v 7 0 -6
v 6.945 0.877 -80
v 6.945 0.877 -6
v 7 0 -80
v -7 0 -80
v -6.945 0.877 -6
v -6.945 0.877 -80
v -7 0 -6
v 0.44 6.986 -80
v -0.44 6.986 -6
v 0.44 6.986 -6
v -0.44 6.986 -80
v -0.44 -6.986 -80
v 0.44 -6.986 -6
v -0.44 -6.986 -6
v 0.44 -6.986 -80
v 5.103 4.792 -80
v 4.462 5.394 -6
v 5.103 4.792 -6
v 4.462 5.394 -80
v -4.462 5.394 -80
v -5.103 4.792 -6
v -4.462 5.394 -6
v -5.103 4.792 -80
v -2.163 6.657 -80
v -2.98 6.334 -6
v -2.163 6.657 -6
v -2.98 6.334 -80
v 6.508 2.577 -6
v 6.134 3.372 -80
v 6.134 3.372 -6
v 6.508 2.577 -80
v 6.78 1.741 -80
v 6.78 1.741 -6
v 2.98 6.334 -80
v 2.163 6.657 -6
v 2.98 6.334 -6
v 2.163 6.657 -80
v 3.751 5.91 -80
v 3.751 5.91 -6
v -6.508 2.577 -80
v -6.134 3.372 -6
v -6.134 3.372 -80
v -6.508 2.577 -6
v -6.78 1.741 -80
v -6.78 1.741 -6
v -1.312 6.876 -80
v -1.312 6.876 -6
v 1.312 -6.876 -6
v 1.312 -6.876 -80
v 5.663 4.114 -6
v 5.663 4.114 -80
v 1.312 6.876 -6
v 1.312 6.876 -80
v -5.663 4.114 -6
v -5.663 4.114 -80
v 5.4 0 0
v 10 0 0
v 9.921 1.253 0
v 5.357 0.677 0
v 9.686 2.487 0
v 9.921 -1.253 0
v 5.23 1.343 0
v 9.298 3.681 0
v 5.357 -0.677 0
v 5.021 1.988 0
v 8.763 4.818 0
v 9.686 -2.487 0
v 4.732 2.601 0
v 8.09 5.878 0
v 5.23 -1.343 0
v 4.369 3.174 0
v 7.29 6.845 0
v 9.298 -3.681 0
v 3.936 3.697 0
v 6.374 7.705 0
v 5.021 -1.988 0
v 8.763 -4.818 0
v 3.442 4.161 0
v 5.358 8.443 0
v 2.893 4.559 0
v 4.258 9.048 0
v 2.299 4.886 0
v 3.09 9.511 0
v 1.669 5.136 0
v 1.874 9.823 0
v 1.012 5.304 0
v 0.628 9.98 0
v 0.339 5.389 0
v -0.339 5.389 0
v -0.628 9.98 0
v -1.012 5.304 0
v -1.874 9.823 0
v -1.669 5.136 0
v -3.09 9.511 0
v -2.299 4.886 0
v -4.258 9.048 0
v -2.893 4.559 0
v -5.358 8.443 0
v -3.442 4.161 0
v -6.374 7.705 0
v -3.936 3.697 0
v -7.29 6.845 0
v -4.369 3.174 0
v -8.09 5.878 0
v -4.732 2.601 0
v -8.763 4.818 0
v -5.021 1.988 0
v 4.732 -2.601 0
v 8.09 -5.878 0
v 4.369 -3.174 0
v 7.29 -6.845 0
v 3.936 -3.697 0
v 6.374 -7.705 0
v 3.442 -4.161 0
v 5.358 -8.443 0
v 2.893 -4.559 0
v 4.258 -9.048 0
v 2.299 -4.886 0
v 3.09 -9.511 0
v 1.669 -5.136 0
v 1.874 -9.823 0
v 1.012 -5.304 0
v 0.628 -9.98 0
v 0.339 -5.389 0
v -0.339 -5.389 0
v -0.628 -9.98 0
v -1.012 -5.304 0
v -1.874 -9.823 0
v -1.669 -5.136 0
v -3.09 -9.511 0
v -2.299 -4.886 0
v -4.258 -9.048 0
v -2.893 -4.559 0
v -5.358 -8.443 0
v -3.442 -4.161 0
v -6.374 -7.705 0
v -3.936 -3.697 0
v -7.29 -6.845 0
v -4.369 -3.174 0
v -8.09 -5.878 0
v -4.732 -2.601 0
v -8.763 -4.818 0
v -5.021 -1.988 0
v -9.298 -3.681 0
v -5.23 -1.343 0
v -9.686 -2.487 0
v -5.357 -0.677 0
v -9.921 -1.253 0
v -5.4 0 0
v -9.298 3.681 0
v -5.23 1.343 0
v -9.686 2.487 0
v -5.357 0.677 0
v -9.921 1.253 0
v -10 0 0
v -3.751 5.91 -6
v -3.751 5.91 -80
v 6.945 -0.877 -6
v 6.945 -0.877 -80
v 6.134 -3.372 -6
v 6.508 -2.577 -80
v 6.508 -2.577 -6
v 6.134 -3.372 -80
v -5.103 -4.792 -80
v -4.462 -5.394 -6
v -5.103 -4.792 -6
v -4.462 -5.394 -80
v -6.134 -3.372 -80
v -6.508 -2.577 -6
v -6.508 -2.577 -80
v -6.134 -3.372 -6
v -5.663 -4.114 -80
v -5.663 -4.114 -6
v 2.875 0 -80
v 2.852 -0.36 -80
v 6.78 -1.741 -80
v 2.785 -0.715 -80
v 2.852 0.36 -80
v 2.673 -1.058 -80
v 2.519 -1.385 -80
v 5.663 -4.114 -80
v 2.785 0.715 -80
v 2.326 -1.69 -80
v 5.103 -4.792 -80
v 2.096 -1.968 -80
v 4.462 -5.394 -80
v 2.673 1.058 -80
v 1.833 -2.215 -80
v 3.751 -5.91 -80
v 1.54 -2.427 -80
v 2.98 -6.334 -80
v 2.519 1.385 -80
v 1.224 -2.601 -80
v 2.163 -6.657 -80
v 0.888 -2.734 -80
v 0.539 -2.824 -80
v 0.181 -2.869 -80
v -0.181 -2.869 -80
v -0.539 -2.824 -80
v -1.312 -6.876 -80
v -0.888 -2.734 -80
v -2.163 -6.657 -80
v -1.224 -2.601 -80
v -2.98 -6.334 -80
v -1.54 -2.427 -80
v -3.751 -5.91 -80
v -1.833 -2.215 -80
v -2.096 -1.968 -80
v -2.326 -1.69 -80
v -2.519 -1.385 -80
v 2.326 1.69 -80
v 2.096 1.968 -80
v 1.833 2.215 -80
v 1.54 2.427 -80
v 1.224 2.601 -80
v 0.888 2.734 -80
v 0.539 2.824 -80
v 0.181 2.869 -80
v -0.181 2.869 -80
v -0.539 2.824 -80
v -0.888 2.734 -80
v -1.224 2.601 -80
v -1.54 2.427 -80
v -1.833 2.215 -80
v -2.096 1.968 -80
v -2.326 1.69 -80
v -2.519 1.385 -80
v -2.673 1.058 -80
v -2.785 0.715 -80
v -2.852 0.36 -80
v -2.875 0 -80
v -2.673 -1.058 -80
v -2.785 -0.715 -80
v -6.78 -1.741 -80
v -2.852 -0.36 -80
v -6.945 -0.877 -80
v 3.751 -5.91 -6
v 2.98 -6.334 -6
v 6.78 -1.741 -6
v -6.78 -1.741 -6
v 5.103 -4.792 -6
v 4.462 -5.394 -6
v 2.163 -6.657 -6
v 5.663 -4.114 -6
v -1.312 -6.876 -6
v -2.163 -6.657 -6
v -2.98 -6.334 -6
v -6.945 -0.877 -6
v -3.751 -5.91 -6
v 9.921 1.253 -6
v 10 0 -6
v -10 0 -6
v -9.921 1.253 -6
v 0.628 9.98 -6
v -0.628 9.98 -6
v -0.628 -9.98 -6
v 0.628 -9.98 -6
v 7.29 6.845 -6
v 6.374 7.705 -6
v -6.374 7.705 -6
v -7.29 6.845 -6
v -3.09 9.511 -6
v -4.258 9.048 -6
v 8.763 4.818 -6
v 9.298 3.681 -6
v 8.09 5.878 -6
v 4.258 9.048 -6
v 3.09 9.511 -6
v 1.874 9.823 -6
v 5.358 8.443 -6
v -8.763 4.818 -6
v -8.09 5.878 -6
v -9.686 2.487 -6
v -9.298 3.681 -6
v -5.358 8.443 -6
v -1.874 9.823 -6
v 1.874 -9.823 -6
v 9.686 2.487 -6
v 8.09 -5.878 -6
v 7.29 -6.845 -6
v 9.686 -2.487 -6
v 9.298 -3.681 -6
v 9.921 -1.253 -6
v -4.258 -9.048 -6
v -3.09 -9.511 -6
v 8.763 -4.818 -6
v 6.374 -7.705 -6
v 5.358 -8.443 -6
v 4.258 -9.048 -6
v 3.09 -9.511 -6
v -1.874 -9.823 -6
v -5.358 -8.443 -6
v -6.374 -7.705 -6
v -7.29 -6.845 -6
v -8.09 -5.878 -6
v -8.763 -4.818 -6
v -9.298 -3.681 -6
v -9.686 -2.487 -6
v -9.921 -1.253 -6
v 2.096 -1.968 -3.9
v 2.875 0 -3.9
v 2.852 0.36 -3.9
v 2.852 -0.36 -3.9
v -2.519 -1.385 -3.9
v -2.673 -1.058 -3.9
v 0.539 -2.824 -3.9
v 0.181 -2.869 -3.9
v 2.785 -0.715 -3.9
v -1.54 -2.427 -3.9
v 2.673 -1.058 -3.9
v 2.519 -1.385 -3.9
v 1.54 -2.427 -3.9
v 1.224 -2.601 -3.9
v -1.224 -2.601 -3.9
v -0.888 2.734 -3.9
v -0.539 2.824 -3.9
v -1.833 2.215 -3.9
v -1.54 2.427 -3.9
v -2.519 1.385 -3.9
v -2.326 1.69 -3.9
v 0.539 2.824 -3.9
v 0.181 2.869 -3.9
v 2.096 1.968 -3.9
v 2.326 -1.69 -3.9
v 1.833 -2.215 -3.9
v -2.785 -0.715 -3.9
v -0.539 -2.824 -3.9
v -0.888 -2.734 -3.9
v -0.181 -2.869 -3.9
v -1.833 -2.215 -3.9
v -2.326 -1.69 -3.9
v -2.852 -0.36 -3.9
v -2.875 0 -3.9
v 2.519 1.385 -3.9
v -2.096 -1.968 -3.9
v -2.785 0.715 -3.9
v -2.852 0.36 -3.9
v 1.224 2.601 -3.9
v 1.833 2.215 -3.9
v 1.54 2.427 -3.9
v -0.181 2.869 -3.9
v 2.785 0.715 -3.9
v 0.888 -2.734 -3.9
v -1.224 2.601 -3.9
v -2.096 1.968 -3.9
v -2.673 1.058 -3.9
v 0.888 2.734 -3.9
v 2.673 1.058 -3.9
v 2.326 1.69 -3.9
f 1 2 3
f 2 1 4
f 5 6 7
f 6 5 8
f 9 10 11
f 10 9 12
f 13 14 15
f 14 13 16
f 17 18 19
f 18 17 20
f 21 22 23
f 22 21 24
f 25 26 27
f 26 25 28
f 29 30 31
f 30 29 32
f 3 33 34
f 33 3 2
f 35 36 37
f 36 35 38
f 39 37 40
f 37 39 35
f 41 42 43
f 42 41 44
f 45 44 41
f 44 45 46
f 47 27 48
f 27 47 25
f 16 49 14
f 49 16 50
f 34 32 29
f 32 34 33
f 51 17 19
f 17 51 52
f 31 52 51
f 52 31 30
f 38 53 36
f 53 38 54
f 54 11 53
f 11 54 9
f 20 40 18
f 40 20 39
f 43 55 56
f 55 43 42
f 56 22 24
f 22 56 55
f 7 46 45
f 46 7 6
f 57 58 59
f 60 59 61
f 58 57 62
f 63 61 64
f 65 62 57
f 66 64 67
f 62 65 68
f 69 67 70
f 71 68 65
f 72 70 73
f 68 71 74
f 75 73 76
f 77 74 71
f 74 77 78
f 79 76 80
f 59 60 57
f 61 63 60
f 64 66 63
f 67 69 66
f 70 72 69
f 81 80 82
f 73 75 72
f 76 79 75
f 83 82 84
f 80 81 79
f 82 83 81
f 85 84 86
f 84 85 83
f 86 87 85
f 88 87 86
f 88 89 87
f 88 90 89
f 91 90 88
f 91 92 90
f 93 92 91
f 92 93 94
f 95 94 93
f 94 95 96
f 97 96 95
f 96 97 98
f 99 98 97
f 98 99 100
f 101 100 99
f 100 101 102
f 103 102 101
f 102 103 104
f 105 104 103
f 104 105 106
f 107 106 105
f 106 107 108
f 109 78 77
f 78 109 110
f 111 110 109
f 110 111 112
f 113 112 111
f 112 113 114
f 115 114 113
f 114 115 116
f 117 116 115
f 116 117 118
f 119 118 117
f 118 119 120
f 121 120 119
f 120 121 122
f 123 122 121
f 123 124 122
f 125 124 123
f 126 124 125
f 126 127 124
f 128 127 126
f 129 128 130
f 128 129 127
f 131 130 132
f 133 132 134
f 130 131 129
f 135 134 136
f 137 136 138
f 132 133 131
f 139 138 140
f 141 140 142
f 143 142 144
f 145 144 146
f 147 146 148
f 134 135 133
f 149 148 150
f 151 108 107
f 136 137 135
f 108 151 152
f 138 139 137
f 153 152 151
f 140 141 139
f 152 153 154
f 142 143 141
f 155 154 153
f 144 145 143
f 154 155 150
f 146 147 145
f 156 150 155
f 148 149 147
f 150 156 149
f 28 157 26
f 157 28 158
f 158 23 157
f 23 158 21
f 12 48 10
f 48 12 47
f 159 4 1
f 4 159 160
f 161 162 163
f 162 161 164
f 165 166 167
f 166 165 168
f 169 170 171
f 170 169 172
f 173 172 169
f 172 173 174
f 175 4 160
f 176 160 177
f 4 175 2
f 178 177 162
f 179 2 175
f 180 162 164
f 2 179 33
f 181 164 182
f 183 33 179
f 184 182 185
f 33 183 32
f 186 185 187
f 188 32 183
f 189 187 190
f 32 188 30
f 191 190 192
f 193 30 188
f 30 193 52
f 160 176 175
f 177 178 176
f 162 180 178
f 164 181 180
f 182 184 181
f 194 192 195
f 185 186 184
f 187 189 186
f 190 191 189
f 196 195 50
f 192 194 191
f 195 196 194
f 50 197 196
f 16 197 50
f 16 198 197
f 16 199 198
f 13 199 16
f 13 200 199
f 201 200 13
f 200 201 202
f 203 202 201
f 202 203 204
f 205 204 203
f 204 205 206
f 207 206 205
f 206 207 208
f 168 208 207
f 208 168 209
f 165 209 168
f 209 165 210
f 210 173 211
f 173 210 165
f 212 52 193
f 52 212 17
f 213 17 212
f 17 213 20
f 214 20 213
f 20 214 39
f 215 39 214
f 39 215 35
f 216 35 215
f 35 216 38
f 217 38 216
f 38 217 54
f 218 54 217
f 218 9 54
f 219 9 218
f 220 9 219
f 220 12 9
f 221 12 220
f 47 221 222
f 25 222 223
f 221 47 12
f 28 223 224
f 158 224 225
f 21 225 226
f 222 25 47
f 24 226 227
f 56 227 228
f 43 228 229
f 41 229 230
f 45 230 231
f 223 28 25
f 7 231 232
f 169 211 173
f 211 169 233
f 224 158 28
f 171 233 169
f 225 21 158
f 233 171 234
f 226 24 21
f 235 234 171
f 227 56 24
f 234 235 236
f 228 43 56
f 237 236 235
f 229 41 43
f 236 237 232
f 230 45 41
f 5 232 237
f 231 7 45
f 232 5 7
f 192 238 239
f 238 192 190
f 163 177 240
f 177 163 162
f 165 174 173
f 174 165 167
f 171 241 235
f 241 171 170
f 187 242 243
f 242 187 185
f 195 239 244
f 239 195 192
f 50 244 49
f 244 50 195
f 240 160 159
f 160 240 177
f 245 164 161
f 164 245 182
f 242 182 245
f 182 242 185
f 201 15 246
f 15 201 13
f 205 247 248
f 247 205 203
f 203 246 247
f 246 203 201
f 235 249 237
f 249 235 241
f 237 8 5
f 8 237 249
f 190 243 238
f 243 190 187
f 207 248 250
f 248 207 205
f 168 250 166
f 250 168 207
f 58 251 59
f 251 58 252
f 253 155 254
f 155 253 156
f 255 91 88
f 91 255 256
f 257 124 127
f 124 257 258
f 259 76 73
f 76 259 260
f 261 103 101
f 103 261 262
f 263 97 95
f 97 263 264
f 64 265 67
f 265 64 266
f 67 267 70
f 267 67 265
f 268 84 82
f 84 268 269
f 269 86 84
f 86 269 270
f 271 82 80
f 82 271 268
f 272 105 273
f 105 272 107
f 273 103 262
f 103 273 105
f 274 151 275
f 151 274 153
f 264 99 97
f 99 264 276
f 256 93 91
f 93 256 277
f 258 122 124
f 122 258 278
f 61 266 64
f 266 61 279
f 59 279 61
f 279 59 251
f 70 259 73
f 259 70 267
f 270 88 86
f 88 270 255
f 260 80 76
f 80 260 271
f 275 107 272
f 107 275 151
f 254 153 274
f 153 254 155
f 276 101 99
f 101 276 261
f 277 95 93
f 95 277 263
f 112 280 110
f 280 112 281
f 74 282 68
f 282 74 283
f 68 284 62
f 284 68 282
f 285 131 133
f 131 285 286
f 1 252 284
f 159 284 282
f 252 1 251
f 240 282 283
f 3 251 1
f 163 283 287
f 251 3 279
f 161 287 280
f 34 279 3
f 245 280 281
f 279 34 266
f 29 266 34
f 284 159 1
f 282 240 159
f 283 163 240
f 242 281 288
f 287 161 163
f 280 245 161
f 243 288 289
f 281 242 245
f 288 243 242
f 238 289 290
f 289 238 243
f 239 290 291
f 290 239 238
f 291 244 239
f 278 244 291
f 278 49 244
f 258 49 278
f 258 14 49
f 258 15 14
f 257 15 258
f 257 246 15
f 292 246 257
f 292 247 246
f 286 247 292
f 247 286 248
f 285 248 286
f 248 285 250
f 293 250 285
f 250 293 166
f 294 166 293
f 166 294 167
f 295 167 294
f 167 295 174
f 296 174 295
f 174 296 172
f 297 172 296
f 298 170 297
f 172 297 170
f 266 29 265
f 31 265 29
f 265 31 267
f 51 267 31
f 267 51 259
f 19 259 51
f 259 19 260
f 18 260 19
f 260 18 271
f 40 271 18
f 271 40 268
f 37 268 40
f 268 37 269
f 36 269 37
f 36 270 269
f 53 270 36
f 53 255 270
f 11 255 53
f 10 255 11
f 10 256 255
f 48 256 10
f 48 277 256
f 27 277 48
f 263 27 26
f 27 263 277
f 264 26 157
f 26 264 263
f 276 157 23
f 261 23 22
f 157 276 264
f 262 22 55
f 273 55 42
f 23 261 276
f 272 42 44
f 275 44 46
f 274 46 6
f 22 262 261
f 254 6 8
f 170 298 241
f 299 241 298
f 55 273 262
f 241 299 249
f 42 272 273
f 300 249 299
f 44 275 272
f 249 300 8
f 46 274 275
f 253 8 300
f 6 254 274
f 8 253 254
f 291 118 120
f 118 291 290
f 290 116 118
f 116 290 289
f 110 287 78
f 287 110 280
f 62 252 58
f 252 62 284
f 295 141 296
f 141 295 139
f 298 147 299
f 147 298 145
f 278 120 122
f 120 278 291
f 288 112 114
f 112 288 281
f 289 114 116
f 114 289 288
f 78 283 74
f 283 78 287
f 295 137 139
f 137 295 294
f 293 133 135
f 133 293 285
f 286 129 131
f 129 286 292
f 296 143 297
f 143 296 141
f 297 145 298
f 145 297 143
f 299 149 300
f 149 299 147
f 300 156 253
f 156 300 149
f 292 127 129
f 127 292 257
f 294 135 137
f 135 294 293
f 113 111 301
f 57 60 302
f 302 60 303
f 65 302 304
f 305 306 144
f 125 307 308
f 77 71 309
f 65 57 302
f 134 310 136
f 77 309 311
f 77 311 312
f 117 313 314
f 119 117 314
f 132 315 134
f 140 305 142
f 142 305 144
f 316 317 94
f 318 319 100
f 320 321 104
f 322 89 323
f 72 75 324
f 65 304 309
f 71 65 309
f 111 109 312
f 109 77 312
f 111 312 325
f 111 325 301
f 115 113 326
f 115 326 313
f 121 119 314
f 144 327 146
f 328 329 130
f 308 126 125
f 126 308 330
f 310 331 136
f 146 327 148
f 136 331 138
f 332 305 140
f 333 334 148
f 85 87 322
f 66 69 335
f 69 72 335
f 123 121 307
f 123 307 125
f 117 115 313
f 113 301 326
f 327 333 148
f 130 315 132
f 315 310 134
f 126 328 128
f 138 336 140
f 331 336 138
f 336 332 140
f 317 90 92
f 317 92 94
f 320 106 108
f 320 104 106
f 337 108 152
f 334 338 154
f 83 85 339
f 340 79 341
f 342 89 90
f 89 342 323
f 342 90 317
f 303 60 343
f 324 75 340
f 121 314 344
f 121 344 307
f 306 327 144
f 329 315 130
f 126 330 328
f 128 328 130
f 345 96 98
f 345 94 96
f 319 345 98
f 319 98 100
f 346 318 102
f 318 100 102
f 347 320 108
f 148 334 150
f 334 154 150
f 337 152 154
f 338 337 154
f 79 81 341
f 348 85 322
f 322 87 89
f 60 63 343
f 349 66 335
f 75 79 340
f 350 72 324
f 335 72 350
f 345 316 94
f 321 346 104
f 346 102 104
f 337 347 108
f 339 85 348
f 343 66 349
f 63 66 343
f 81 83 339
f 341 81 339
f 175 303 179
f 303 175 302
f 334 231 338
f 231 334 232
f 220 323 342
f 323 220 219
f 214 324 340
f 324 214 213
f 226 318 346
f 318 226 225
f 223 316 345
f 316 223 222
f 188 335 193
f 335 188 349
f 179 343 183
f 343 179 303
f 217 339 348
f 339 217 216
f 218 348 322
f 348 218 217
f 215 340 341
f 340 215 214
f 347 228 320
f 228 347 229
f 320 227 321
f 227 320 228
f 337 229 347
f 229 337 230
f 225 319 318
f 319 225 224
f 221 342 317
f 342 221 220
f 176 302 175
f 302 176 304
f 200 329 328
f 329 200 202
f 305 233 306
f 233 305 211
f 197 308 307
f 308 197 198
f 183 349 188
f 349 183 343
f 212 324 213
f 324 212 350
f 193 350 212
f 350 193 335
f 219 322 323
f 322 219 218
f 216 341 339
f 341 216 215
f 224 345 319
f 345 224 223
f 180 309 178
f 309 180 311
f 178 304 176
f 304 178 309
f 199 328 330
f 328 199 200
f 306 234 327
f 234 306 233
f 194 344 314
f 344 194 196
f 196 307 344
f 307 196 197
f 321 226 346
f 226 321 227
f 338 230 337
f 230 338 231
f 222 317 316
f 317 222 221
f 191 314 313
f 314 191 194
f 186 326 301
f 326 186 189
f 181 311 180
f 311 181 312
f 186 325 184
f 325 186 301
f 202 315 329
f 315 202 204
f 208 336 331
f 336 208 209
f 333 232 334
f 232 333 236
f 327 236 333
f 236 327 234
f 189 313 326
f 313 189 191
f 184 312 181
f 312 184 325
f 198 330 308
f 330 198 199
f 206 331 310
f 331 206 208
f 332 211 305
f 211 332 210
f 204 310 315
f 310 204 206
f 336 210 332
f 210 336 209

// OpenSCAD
$fn = 50;


difference() {
	union() {
		translate(v = [0, 0, -80.0000000000]) {
			cylinder(h = 80, r = 7.0000000000);
		}
		translate(v = [0, 0, -6.0000000000]) {
			cylinder(h = 6, r = 10.0000000000);
		}
	}
	union() {
		translate(v = [0, 0, 0]) {
			rotate(a = [0, 0, 0]) {
				difference() {
					union() {
						#translate(v = [0, 0, -80.0000000000]) {
							cylinder(h = 80, r = 2.6000000000);
						}
						#translate(v = [0, 0, -3.9000000000]) {
							cylinder(h = 3.9000000000, r1 = 2.8750000000, r2 = 5.4000000000);
						}
						#translate(v = [0, 0, -80.0000000000]) {
							cylinder(h = 80, r = 2.8750000000);
						}
						#translate(v = [0, 0, -80.0000000000]) {
							cylinder(h = 80, r = 2.6000000000);
						}
					}
					union();
				}
			}
		}
	}
}
